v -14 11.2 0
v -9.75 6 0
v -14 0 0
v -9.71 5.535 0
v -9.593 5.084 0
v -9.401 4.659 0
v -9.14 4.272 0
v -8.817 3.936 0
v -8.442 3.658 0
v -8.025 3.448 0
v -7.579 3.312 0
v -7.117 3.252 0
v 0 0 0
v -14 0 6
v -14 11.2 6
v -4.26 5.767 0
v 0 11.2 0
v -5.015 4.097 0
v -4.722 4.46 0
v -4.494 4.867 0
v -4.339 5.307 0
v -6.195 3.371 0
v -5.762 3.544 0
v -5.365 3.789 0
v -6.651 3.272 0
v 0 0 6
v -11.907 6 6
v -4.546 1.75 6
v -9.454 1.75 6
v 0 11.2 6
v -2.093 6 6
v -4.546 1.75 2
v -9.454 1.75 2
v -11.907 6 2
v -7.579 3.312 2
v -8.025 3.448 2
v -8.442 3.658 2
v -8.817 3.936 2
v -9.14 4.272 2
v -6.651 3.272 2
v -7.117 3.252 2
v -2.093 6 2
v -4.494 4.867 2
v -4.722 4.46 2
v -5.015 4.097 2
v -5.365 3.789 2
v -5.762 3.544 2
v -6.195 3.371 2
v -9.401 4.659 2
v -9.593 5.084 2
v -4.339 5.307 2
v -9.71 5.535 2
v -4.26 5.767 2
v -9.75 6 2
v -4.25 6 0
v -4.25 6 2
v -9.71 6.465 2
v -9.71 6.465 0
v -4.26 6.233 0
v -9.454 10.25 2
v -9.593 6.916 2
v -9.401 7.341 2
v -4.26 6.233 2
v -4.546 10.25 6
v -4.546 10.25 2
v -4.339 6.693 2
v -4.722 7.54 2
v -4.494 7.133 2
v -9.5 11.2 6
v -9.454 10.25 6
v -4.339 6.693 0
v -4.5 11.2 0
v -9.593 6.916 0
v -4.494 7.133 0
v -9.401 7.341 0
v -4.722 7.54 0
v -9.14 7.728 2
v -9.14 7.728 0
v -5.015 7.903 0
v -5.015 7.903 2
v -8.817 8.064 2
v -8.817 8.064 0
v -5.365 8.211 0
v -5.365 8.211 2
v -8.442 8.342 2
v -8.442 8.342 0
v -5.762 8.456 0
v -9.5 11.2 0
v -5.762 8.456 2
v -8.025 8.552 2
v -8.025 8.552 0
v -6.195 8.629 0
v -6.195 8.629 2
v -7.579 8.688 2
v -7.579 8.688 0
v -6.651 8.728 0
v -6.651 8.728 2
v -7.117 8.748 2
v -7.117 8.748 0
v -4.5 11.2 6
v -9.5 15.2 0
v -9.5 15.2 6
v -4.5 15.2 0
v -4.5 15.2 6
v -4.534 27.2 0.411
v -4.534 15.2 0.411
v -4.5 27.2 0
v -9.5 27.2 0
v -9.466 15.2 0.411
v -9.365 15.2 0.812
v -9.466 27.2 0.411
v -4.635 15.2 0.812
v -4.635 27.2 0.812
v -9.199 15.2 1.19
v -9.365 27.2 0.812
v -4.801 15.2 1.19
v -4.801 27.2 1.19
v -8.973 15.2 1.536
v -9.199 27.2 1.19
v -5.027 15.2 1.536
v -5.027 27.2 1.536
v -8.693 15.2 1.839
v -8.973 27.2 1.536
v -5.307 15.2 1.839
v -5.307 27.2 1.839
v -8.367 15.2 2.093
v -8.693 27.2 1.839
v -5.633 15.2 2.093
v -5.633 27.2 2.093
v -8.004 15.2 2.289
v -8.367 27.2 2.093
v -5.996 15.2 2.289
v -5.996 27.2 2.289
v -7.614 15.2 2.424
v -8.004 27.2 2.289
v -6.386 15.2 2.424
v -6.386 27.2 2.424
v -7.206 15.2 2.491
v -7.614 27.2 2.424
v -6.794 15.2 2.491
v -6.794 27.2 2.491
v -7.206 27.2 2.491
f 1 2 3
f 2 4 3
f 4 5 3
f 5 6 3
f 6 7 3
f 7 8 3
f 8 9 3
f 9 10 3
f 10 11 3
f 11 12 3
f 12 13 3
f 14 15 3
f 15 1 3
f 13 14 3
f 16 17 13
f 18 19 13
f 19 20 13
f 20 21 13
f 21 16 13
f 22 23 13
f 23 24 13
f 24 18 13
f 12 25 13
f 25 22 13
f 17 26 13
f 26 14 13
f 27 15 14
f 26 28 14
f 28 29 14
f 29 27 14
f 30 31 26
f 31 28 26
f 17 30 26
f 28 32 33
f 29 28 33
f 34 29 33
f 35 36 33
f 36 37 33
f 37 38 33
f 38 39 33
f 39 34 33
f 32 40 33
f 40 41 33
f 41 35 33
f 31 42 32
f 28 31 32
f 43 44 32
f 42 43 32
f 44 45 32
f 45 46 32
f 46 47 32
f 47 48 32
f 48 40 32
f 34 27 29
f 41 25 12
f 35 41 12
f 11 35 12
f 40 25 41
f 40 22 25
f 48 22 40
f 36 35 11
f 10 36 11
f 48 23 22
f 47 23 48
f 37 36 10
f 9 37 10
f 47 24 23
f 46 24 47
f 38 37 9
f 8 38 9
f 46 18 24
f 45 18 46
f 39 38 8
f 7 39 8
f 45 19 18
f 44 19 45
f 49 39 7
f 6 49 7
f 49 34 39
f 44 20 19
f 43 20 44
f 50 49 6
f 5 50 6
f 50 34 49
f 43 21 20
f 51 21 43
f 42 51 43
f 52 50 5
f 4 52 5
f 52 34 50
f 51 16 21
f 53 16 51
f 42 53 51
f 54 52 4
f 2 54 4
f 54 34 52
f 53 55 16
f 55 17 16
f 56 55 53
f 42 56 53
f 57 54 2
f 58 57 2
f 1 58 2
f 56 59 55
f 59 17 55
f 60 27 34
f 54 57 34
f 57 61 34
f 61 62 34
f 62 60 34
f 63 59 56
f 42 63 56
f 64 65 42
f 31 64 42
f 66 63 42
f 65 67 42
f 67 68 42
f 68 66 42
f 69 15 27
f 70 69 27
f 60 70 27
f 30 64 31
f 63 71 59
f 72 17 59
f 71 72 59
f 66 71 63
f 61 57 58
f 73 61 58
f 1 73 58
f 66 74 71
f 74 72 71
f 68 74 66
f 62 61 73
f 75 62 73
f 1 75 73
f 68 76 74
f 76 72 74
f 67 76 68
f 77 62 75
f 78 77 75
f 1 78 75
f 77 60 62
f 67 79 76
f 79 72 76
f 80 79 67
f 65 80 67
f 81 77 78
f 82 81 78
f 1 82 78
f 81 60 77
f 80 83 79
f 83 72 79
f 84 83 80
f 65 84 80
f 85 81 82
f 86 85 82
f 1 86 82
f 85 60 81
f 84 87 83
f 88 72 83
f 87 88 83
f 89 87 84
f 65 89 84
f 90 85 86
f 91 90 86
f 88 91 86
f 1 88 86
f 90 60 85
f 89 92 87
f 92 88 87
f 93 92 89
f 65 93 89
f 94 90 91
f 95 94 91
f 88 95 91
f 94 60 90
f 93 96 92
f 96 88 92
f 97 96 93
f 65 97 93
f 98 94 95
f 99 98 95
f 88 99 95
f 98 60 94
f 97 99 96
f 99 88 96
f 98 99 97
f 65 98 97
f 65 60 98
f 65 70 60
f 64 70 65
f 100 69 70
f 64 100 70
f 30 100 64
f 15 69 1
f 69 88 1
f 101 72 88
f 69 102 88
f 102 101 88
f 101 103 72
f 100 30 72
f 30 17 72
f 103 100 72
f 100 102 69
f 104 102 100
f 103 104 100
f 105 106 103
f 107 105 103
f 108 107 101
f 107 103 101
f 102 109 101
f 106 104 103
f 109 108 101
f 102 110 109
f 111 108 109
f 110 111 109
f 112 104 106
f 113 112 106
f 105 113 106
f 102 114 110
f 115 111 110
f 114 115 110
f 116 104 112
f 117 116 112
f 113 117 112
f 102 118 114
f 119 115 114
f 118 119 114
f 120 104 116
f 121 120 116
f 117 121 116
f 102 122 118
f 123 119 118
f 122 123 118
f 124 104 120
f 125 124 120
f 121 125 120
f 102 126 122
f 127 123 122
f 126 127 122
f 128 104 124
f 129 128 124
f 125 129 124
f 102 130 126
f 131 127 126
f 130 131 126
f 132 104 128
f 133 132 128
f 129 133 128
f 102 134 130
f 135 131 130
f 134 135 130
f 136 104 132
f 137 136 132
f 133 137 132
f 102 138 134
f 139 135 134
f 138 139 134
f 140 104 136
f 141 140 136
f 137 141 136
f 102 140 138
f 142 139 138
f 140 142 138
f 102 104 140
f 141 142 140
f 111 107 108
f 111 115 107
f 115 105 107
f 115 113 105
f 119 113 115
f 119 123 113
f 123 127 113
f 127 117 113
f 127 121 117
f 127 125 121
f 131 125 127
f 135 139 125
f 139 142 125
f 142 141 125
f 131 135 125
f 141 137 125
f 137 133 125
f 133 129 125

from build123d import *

# Parameters (mm, degrees)
CROQUIS1_R              = 2.75
SALIENTE_EXTRUIR1_DEPTH = 6
SALIENTE_EXTRUIR2_DEPTH = 12
CORTAR_EXTRUIR1_DEPTH   = 4


with BuildPart() as part:
    # Croquis1 → Saliente-Extruir1 (new body)
    with BuildSketch(Plane.XY):
        Polygon((-9.5, 11.2), (-14, 11.2), (-14, 0), (0, 0), (0, 11.2), (-4.5, 11.2), (-4.5, 15.2), (-9.5, 15.2), align=None)
        with Locations((-7, 6)):
            Circle(CROQUIS1_R, mode=Mode.SUBTRACT)
    extrude(amount=SALIENTE_EXTRUIR1_DEPTH)

    # Croquis2 → Saliente-Extruir2 (add)
    with BuildSketch(Plane(origin=(0, 15.2, 0), x_dir=(1, 0, 0), z_dir=(0, 1, 0))):
        with BuildLine():
            Line((-9.5, 0), (-4.5, 0))
            ThreePointArc((-4.5, 0), (-7, -2.5), (-9.5, 0))
        make_face()
    extrude(amount=SALIENTE_EXTRUIR2_DEPTH)

    # Croquis3 → Cortar-Extruir1 (cut)
    with BuildSketch(Plane.XY.offset(6)):
        Polygon((-2.092522712, 6), (-4.546261356, 10.25), (-9.453738644, 10.25), (-11.907477288, 6), (-9.453738644, 1.75), (-4.546261356, 1.75), align=None)
    extrude(amount=-CORTAR_EXTRUIR1_DEPTH, mode=Mode.SUBTRACT)


solid = part.part
